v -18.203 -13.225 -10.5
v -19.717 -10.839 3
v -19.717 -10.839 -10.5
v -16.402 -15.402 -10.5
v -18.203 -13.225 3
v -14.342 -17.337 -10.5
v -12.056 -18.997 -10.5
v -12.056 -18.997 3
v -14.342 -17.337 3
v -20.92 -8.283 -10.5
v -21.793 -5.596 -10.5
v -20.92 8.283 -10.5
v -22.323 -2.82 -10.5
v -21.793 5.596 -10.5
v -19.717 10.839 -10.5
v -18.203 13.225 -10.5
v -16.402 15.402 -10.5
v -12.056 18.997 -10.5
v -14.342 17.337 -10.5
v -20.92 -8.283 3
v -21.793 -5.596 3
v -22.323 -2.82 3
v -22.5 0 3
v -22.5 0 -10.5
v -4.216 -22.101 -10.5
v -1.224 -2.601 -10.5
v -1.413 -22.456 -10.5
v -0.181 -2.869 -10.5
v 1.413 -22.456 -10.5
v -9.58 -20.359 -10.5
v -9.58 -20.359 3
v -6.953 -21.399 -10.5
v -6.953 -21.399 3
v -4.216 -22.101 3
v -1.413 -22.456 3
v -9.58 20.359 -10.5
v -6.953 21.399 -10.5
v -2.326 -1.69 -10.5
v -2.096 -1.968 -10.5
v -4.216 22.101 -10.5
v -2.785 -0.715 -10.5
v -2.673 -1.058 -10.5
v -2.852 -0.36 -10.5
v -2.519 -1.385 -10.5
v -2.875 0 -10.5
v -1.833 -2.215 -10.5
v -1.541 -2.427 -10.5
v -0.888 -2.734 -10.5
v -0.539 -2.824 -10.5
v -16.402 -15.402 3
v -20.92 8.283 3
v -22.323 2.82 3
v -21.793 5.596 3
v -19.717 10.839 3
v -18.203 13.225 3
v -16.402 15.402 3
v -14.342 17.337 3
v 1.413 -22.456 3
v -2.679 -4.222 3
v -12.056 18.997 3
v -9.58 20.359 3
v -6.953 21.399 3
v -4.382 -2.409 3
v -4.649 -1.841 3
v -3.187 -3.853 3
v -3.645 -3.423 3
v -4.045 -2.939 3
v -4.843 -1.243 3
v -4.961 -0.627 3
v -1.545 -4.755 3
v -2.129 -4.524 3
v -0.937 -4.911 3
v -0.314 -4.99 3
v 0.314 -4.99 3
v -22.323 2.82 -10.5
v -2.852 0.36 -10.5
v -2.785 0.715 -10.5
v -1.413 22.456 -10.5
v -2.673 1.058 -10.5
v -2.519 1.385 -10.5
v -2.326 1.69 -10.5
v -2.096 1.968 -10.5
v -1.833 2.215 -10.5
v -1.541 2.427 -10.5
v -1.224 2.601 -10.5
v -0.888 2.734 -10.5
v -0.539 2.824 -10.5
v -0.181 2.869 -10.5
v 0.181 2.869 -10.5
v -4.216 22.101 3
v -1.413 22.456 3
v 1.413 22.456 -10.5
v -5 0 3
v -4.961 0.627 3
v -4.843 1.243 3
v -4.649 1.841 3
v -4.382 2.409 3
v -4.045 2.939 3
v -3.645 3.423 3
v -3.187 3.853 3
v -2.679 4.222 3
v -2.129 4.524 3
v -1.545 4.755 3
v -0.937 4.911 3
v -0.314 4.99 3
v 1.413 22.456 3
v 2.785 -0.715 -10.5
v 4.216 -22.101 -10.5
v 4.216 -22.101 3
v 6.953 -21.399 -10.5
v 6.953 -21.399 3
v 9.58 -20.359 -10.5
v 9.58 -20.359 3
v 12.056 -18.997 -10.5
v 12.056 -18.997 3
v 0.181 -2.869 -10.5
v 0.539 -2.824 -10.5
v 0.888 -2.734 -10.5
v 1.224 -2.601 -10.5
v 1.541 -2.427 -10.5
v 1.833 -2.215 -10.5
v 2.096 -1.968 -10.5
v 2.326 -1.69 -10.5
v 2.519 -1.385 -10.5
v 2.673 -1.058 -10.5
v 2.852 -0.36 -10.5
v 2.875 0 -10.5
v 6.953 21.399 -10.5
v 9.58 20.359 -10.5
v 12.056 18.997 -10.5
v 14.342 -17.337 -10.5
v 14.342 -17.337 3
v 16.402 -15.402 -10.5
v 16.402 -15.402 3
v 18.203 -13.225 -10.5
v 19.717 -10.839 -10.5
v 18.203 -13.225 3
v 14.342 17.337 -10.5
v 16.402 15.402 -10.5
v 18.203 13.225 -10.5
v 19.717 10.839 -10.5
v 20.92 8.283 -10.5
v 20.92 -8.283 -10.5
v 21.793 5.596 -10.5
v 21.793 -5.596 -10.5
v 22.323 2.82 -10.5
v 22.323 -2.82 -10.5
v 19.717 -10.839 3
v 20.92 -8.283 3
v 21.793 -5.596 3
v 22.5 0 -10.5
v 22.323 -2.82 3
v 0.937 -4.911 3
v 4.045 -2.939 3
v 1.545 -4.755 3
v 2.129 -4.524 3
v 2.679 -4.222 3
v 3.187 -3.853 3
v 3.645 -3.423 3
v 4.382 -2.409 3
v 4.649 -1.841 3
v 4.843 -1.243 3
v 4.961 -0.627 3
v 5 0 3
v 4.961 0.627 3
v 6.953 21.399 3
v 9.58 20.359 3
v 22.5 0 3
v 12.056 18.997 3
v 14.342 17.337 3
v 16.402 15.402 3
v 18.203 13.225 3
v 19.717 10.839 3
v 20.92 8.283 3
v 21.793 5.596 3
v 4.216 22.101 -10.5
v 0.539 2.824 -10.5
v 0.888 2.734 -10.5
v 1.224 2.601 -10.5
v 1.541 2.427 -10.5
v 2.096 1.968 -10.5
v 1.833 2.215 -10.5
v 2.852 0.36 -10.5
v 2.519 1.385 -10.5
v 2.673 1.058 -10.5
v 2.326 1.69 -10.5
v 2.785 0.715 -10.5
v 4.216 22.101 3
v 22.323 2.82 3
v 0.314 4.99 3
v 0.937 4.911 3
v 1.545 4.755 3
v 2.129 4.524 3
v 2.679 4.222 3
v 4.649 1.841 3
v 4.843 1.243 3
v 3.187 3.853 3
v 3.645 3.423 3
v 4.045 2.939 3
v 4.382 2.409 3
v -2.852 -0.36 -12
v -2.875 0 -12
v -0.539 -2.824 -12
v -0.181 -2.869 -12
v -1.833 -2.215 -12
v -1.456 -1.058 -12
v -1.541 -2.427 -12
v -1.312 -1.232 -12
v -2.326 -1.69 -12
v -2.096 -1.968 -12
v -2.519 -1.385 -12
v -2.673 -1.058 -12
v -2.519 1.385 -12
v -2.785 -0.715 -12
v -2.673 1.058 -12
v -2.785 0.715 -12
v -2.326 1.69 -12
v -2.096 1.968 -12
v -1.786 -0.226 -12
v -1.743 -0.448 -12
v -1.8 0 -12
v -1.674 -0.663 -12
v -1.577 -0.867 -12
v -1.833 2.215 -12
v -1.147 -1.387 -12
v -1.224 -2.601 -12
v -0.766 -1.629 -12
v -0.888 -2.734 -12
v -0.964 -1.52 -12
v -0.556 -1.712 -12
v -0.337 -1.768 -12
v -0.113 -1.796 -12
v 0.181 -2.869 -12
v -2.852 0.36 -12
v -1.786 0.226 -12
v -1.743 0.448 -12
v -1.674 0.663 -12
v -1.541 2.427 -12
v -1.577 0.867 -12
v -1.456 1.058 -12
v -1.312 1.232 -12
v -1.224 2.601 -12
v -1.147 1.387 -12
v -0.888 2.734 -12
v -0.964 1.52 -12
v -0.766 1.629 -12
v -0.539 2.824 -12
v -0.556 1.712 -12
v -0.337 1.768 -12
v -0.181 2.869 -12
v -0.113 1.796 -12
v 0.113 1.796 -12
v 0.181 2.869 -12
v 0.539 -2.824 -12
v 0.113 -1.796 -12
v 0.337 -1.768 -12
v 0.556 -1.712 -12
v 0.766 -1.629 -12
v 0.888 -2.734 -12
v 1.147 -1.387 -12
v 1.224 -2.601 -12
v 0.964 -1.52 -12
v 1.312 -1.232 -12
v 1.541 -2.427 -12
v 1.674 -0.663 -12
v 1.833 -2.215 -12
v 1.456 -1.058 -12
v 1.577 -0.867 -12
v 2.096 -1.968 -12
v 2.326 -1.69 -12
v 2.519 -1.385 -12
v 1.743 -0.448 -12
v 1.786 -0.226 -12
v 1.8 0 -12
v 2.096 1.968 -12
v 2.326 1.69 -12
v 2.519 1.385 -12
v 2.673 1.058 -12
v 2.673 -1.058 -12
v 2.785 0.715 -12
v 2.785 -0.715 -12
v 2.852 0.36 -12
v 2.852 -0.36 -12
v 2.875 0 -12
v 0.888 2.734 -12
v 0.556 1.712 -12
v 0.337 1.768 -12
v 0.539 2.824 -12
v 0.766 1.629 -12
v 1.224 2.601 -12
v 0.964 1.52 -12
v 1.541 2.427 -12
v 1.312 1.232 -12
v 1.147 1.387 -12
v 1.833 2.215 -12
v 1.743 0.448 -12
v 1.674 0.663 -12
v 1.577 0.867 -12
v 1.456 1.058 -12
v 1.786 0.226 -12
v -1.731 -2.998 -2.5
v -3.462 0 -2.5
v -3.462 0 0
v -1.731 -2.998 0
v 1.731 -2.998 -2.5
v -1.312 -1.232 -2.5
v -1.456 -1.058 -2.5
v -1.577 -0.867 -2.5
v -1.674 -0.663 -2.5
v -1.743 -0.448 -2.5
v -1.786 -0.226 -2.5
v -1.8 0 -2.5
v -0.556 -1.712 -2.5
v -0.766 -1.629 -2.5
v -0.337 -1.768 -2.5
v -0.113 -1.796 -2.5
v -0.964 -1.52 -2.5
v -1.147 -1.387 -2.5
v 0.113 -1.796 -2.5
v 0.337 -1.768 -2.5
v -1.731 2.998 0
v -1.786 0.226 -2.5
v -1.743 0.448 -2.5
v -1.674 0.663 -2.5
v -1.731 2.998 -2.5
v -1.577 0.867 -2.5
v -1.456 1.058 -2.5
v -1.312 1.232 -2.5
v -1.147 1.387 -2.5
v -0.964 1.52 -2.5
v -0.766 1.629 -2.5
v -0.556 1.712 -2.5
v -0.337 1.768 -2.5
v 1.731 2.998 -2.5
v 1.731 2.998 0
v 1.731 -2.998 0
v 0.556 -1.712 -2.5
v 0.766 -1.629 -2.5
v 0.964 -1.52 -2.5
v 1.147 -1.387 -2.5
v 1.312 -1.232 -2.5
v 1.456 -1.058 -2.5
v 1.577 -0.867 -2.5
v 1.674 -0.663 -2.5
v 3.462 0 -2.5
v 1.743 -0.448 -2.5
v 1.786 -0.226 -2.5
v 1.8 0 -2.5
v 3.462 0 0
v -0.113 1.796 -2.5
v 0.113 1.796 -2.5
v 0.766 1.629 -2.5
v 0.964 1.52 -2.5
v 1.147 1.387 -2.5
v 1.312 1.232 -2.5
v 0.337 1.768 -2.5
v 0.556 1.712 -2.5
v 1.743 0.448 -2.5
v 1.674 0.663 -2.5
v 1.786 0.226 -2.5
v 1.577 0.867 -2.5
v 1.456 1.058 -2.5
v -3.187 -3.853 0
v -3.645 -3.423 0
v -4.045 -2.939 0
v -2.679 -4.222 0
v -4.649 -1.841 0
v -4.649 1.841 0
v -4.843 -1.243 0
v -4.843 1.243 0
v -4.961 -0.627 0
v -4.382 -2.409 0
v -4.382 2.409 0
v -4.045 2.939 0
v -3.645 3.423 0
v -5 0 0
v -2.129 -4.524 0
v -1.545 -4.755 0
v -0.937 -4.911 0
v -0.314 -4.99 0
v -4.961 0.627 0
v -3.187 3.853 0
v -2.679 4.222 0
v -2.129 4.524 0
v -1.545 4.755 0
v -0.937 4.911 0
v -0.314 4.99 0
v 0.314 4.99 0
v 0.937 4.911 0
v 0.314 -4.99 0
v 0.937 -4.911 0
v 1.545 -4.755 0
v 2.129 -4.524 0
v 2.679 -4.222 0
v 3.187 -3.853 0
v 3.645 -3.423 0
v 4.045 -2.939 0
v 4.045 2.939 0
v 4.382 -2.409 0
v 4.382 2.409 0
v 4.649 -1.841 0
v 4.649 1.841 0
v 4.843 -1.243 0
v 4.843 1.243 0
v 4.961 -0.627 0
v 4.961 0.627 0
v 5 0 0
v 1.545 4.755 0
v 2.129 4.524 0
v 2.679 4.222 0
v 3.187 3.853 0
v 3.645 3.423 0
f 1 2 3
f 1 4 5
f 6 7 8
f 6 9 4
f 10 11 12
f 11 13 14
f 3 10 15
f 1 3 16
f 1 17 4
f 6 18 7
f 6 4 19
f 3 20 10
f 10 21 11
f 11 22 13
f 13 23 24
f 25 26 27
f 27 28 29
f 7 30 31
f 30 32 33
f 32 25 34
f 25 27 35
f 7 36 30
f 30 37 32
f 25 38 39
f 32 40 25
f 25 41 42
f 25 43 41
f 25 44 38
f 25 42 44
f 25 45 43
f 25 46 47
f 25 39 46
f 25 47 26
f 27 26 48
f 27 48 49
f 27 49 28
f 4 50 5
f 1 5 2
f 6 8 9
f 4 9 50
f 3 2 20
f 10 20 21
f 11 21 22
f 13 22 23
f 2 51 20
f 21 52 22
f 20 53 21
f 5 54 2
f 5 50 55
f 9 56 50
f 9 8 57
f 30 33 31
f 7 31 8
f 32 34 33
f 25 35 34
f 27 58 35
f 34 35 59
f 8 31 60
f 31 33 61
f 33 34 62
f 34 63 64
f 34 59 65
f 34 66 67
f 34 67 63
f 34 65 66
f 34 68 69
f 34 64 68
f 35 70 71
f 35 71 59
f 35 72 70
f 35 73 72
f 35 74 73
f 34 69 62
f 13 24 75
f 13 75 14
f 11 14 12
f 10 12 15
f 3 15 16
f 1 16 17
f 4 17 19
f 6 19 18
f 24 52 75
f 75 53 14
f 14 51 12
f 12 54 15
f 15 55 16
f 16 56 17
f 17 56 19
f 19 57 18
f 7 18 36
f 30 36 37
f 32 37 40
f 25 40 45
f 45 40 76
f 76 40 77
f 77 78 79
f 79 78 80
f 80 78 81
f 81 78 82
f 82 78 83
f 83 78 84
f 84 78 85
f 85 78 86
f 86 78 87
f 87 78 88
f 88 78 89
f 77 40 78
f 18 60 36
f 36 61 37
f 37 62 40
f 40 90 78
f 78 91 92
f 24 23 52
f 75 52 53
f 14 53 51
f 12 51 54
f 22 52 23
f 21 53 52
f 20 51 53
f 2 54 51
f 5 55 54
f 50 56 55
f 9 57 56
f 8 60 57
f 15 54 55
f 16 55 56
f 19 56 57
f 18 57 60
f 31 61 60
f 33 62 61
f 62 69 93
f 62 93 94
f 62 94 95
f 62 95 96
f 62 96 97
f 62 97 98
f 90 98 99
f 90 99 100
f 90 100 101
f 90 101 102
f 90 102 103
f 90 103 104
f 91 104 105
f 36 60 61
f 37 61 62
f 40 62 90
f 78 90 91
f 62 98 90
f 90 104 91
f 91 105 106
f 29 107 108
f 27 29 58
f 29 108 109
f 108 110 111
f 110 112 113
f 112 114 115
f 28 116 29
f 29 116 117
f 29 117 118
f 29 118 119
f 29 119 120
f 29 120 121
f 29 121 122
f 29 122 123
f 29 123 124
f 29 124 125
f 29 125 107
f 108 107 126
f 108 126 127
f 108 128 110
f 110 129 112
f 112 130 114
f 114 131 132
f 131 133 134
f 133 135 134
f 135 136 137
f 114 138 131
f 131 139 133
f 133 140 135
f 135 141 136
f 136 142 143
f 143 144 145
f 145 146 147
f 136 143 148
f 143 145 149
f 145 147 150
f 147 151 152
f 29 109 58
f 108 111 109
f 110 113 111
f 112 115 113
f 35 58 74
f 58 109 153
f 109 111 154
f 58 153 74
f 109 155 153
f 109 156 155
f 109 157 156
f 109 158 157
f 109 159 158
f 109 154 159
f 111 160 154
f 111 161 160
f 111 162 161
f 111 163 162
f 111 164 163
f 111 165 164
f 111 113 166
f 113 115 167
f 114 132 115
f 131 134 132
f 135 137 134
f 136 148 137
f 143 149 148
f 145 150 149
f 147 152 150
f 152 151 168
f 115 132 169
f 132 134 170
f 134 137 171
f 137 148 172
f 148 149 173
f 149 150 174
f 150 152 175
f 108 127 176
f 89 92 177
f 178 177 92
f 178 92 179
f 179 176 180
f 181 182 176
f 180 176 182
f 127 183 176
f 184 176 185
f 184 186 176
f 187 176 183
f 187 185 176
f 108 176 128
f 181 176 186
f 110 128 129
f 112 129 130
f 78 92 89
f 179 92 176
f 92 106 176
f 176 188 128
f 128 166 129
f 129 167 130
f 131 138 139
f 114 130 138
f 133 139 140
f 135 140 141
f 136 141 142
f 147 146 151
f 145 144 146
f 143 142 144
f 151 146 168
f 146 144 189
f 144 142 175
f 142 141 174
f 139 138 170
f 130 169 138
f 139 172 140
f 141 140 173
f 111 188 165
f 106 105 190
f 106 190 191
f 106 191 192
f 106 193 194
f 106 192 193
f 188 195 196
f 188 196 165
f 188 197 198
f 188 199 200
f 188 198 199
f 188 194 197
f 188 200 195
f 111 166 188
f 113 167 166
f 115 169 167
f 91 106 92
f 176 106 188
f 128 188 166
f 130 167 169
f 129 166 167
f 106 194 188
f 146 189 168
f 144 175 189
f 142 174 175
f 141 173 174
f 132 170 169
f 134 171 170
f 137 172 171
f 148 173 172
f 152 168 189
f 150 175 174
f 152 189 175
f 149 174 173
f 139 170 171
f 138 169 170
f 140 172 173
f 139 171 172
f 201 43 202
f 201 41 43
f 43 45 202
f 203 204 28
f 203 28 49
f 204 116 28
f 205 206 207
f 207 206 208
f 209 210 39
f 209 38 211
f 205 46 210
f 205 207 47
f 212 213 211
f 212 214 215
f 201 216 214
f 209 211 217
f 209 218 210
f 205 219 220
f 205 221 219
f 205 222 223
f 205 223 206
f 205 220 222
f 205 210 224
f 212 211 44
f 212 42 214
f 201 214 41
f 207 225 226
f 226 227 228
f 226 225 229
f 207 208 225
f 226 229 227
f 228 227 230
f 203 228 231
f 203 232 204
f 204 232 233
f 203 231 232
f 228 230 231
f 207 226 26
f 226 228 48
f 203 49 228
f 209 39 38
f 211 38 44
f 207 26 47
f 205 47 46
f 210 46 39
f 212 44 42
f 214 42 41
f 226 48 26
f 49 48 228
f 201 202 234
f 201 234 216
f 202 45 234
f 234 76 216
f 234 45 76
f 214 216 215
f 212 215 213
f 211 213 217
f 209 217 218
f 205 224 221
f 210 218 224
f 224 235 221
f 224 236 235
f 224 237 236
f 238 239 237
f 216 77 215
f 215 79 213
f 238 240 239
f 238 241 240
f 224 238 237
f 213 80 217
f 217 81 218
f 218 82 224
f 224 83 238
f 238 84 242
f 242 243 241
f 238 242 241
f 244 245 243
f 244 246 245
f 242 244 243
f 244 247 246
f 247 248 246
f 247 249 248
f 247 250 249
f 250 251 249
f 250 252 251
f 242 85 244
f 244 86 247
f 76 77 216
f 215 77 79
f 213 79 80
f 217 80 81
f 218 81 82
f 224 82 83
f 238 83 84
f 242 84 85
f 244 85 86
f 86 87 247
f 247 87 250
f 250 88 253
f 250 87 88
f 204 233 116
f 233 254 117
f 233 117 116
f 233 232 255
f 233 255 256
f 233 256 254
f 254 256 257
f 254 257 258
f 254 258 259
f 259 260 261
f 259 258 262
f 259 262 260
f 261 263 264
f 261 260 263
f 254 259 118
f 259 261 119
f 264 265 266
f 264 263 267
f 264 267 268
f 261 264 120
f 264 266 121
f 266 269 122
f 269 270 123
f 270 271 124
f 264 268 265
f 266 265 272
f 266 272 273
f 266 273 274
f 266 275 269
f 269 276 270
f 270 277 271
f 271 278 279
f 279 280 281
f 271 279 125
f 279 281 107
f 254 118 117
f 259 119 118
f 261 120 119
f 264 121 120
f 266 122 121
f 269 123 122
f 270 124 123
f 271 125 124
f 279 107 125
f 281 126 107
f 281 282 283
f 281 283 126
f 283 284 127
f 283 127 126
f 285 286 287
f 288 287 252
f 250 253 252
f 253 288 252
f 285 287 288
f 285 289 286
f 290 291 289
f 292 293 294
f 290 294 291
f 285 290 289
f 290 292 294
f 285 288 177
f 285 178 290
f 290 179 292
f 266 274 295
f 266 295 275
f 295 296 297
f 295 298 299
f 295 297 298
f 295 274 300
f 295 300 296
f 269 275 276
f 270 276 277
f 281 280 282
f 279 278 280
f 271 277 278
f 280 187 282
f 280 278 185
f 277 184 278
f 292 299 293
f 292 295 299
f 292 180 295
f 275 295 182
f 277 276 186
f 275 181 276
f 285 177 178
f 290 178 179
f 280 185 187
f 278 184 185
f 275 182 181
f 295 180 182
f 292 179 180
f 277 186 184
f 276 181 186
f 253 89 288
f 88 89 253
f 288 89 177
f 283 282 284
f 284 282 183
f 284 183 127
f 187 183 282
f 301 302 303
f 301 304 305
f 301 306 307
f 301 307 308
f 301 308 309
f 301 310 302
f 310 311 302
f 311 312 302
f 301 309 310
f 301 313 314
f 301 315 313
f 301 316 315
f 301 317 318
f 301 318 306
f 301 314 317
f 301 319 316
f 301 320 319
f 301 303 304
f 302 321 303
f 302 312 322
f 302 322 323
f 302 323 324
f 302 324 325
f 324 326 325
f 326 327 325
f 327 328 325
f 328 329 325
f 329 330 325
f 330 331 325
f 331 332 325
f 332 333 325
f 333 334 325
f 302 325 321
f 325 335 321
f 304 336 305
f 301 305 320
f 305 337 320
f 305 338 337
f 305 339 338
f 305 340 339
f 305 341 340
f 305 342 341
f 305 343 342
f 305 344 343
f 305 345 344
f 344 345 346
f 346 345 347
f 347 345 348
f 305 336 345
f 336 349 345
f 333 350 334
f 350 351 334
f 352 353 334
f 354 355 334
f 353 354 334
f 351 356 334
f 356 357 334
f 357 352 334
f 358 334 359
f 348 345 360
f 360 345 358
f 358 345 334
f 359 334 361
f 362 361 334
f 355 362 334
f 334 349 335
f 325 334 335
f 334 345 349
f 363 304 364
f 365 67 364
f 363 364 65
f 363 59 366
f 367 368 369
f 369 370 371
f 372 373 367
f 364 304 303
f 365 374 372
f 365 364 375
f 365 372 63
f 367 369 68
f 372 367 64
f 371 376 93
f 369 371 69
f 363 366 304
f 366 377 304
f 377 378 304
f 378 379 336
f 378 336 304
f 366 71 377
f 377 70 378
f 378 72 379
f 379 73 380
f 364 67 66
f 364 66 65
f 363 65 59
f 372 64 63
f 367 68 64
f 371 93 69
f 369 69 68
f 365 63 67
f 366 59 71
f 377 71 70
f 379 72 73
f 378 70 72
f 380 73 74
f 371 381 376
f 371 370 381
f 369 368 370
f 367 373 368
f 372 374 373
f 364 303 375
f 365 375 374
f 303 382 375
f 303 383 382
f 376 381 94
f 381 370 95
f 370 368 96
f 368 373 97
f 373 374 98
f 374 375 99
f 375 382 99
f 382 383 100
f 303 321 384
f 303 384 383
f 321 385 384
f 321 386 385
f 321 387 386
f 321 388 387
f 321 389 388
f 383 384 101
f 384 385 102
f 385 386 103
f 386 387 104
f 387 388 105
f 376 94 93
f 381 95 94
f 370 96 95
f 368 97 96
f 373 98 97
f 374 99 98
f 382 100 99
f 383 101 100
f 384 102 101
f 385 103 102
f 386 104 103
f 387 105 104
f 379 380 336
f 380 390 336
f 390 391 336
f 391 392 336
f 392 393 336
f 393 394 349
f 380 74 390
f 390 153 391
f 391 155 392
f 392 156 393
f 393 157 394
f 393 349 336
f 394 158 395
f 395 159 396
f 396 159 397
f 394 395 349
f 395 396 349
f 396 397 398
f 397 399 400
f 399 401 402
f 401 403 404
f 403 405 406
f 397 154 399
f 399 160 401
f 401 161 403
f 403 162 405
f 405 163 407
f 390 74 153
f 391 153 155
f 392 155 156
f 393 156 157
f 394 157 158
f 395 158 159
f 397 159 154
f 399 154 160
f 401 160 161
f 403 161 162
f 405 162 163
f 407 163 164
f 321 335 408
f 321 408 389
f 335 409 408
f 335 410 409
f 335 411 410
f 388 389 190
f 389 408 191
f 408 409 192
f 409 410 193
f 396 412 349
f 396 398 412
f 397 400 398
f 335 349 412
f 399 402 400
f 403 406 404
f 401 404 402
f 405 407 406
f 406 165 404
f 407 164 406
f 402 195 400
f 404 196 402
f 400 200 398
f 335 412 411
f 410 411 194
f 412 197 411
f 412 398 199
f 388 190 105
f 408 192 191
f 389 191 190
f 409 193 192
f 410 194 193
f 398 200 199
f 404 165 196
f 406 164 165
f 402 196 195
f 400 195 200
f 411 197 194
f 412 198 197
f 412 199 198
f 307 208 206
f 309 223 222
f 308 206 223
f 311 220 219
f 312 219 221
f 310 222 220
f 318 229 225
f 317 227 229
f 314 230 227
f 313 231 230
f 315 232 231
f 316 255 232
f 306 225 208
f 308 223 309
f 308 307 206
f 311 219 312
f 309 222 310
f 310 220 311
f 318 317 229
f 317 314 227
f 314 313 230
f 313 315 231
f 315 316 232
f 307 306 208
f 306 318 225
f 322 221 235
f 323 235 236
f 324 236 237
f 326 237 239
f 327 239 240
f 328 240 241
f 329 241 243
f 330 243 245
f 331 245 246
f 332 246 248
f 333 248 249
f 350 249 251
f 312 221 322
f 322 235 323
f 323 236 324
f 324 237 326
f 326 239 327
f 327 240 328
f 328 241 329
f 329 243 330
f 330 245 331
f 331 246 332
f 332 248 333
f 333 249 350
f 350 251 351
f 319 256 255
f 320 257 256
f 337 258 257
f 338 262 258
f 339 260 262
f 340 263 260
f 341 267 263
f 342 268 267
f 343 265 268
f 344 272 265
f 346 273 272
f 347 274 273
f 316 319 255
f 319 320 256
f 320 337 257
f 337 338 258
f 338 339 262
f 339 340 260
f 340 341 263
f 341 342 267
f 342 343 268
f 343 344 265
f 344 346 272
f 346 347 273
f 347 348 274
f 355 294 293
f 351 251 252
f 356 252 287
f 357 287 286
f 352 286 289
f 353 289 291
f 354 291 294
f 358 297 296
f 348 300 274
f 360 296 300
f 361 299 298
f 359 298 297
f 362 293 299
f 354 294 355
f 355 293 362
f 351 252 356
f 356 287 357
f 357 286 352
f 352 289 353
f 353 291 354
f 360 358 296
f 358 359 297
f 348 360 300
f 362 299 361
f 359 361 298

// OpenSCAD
$fn = 50;

difference() {
	union() {
		translate(v = [0, 0, -10.5]) {
			cylinder(h = 13.5, r = 22.5);
		}
		#translate(v = [0, 0, -12.0]) {
			cylinder(h = 12, r = 2.875);
		}
	}
	union() {
		translate(v = [0, 0, 0]) {
			rotate(a = [0, 0, 0]) {
				difference() {
					union() {
						translate(v = [0, 0, -2.5]) {
							linear_extrude(height = 2.5) {
								polygon(points = [[3.4619999999999997, 0.0], [1.7310000000000003, 2.9981799479017264], [-1.7309999999999992, 2.9981799479017264], [-3.4619999999999997, 4.2397272186481365e-16], [-1.7310000000000014, -2.998179947901726], [1.7309999999999977, -2.9981799479017277]]);
							}
						}
					}
					union();
				}
			}
		}
		#cylinder(h = 3, r = 5.0);
		#translate(v = [0, 0, -100.0]) {
			cylinder(h = 200, r = 1.8);
		}
	}
}
